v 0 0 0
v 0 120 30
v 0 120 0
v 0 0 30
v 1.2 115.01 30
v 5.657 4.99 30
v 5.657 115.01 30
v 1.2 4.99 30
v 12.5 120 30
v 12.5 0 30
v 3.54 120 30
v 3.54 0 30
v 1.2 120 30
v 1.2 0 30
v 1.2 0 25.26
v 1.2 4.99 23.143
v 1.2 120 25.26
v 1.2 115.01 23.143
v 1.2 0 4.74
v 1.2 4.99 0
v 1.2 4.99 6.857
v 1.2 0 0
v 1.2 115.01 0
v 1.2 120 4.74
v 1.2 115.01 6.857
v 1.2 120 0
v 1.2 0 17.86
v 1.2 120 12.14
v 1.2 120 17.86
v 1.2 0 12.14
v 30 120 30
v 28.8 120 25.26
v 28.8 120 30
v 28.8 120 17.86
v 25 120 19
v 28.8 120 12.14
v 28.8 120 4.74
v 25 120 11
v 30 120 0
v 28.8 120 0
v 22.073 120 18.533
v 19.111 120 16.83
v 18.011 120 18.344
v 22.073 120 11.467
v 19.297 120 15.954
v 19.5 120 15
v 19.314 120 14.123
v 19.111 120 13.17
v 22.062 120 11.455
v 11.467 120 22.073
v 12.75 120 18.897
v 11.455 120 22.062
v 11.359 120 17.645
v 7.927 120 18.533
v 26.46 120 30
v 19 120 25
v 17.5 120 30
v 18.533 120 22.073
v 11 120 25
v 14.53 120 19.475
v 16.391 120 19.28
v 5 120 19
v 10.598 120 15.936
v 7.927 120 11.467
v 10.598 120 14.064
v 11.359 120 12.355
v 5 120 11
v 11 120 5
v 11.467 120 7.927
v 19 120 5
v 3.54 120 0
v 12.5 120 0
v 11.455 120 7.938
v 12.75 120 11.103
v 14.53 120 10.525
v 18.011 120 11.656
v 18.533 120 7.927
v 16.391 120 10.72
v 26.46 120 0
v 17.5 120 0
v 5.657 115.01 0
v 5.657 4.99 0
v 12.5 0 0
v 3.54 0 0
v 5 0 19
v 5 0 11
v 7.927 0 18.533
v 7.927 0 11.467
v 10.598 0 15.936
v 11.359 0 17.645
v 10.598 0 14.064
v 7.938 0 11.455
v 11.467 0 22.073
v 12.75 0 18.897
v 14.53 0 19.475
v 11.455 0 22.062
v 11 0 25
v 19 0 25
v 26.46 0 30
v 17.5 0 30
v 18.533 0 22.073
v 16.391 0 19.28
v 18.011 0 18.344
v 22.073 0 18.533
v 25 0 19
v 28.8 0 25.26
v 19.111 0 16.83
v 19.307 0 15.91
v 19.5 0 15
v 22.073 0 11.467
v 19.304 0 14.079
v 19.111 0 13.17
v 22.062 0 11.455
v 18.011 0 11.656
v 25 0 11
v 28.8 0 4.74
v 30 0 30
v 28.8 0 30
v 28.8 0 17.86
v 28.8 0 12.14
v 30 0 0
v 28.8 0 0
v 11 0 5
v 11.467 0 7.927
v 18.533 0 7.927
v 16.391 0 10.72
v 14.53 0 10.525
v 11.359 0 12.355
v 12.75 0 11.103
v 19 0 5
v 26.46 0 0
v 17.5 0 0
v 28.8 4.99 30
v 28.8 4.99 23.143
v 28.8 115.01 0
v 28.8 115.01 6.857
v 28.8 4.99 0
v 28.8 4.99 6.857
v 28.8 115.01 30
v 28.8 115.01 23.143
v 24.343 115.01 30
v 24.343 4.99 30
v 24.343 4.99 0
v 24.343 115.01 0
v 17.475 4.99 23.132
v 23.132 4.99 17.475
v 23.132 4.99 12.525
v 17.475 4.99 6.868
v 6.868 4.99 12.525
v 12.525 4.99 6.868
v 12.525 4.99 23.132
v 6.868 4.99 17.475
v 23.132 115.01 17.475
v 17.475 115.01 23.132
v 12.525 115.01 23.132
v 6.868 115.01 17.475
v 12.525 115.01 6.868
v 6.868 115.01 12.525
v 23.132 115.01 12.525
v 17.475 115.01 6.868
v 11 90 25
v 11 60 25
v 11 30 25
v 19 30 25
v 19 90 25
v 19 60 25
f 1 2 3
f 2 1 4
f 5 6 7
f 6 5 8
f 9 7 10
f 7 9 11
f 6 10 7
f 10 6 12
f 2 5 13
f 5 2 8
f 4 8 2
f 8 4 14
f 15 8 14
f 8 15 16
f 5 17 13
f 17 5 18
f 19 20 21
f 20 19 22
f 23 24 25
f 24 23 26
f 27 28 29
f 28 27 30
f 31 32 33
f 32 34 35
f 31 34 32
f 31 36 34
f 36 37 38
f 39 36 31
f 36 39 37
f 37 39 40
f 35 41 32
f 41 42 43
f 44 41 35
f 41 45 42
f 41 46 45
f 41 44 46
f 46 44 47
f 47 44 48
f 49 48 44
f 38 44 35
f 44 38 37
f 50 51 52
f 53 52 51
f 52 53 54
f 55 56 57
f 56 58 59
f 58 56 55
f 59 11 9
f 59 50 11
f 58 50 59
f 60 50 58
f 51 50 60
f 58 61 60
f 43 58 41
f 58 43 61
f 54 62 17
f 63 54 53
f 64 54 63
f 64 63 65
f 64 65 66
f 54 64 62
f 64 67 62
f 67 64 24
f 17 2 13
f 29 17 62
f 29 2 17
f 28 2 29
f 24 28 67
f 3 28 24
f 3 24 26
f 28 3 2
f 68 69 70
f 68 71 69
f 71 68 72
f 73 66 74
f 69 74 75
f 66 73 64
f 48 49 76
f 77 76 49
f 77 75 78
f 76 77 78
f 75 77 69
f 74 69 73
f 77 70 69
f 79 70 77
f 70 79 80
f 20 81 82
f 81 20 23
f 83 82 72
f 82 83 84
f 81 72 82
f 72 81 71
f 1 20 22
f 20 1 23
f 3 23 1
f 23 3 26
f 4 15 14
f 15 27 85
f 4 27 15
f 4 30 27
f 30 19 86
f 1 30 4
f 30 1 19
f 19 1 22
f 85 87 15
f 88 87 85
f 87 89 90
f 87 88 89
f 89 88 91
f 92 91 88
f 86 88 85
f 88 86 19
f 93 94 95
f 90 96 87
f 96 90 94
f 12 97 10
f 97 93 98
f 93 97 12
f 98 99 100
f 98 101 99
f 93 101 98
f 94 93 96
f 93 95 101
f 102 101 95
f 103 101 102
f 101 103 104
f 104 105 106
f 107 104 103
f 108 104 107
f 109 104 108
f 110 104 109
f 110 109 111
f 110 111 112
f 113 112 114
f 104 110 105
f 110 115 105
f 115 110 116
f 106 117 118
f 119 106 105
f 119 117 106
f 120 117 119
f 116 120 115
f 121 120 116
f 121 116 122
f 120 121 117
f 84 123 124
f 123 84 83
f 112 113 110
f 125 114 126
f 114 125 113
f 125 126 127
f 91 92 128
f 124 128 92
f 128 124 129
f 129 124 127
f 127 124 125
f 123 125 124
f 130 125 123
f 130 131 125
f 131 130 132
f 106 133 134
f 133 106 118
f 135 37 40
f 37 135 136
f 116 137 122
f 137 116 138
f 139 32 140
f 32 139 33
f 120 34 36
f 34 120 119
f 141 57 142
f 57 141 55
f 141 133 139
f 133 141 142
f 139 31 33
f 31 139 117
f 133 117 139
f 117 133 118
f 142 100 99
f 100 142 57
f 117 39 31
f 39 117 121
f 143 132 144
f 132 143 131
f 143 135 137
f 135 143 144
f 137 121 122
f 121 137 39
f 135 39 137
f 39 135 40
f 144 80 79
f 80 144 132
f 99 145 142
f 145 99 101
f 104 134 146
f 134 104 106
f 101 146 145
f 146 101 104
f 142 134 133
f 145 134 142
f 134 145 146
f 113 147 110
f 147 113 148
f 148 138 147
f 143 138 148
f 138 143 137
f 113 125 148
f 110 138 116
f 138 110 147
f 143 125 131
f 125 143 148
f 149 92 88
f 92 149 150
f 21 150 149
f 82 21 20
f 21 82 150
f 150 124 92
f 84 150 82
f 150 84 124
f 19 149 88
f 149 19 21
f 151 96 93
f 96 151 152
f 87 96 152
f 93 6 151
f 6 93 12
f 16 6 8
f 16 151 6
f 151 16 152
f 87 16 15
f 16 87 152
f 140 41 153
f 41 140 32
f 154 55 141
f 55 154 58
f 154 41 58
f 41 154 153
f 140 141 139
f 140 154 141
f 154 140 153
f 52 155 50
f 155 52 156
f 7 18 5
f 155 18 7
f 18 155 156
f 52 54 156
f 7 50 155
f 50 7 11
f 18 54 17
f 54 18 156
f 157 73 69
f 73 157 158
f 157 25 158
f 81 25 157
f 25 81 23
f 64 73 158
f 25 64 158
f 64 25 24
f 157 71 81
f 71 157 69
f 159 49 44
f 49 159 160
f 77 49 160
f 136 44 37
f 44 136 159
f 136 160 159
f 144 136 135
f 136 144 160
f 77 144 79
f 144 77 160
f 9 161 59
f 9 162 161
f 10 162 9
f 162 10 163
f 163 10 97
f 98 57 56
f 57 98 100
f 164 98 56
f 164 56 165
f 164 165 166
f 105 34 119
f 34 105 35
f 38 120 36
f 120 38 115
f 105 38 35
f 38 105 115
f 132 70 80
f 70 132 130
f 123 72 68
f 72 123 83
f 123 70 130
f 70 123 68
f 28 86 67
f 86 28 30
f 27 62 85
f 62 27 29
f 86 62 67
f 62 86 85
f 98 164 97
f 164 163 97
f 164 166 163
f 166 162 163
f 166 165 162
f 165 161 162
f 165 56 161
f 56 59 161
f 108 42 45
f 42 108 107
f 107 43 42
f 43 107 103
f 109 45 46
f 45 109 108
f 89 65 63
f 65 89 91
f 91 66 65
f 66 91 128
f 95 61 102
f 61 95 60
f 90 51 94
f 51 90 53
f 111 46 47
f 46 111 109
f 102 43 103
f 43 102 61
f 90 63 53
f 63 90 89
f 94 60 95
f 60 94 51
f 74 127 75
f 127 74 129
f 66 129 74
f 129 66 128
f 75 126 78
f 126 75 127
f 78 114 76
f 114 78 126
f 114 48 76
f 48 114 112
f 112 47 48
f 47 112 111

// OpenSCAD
// file: globals.scad
/*
Most things in this file is represented as one millimeter, so keep that in mind while changing things.
Some of the setting are not mm but at variables that you can set, such as 2*x=2x and you are setting what x is.
I will try to specify when things are variables and not exact measurements.
*/

obj_leg = 30;
leg_length = 5.5;
small_number = 0.001;
metal_core_rode_global = 5;


///////////////// number of holes /////////////////////
z_hole_number = 8;
other_holes = 8;

///////////////// Pins /////////////////////

//pins that poke out
ball_size = 10;
pin_height = 20;
pin_diameter = 6;


//holes
hole_ball_size = ball_size;
hole_pin_height = pin_height;
hole_pin_diameter = pin_diameter;

///////////////// Z THINGS /////////////////////

berring_slot_width = 7.5;
berring_slot_depth = 6.5;
metal_core_rode = 5;

///////////////// X THINGS /////////////////////

//male dove tails
max_width=8;
min_width=5;
depth=5;
height=obj_leg/2;

//female dove tails, this is found on the y mounts
girl_max_width=11;
girl_min_width=5;
girl_depth=5;
girl_height=obj_leg;


///////////////// Y THINGS /////////////////////
/*
The Y is so normal that all of those global variables at the top should change all of the setting in it, this section is set her incase there are variables set in the future development of this project.
*/
// file: include.scad
//////////////////      END SECTION       //////////////////

	module added_pins(){
		difference(){
			union(){
				translate([30/(15/4),obj_leg*leg_length,30/(15/4)]) pin();
				translate([30/(15/4)+14.5,obj_leg*leg_length,30/(15/4)+14]) pin();
			}
			union(){
							translate([30/(15/4)+13.5,obj_leg*leg_length-20,30/(15/4)+5])cube(size=[2,40,15]);
							translate([30/(15/4)+7.5,obj_leg*leg_length-20,30/(15/4)+15])rotate([0,90,0]) cube(size=[2,40,15]);	

							translate([30/(15/4)-1,obj_leg*leg_length-20,30/(15/4)-8])cube(size=[2,40,15]);
							translate([30/(15/4)-10,obj_leg*leg_length-20,30/(15/4)+1])rotate([0,90,0]) cube(size=[2,40,15]);
			}
		}
	}
	module taken_pins() {
		translate([30/(15/4)+14,obj_leg*leg_length-10,30/(15/4)]) mirror_pin();
		translate([30/(15/4),obj_leg*leg_length-10,30/(15/4)+15]) mirror_pin();
	}


//////////////////      OTHER STUFF       //////////////////

	module holes() {
		rotate([0,0,90]) for(y=[0:other_holes])
		translate([obj_leg+y*15,-15.5,7.5]) union() {
			translate([7.5,0,15]) hole_up();
			hole_down();
		}
	}
	module extend_holes() {
	module top(){
		rotate([0,0,90]) for(y=[0:other_holes+1])
		translate([(30/4)+y*15,-15.5,7.5]) union() {
			translate([7.5,0,15]) hole_up();
		}
	}
	module bottom(){
		rotate([0,0,90]) for(y=[0:other_holes+2])
		translate([(30/4)+y*15,-15.5,7.5]) union() {
			hole_down();
		
}
	}
	union(){
		top();
		bottom();
	}
	}

	module hole() {
		union() {
			rotate([90, 90, 0]) cylinder(h=40, d=hole_pin_diameter, center=true);
			translate([0,7.5,0]) sphere(d=hole_ball_size);
			translate([0,-6,0]) sphere(d=hole_ball_size);
		}
	}
	module hole_up() {
		union() {
			rotate([90, 90, 0]) cylinder(h=40, d=hole_pin_diameter, center=true);
			translate([0,7.5,10]) cylinder(h=hole_pin_height, d=hole_pin_diameter, center=true);
			translate([0,-6,10]) cylinder(h=hole_pin_height, d=hole_pin_diameter, center=true);
			translate([0,7.5,0]) sphere(d=hole_ball_size);
			translate([0,-6,0]) sphere(d=hole_ball_size);
		}
	}
	module hole_down() {
		union() {
			rotate([90, 90, 0]) cylinder(h=40, d=hole_pin_diameter, center=true);
			translate([0,7.5,-10]) cylinder(h=hole_pin_height, d=hole_pin_diameter, center=true);
			translate([0,-6,-10]) cylinder(h=hole_pin_height, d=hole_pin_diameter, center=true);
			translate([0,7.5,0]) sphere(d=hole_ball_size);
			translate([0,-6,0]) sphere(d=hole_ball_size);
		}
	}
	module pin() {
		union() {
			rotate([90, 90, 0]) cylinder(h=pin_height, d=pin_diameter, center=true);
			translate([0,7.5,0]) sphere(d=ball_size);
		}
	}

	module mirror_pin() {
		rotate([90, 90, 0]) cylinder(h=hole_pin_height+small_number, d=hole_pin_diameter, center=true);
		translate([0,-(pin_height-(ball_size/2)),0]) sphere(d=ball_size);
	}


//////////////////      SOME RACK AND Z THINGS       //////////////////

module z_holes() {
    rotate([0,-90,0]) for(z=[0:z_hole_number])
    translate([22.5+z*15,16,-12])
        hole();
}

module pin_cuts() {
	union(){
		cube(size=[2,10,40], center=true);
		rotate([0,0,90]) cube(size=[2,10,40], center=true);
	}
}
module pin_uncut() {
	union(){
		rotate([0, 0, 90]) cylinder(h=hole_pin_height, d=hole_pin_diameter, center=true);
		translate([0,0,10]) sphere(d=ball_hole);
	}
}


module pin_out() {
	union(){
		rotate([0, 0, 90]) cylinder(h=pin_height, d=pin_diameter, center=true);
		translate([0,0,10]) sphere(d= ball_size);
	}
}


module pins_z(){
	difference() {
		pin_out();
		pin_cuts();
	}
}
//////////////////      RACK AND SLIDE     ///////////////////

module straight_pins() {
	for(z=[0:((((obj_leg*leg_length)*2)-(obj_leg*2))/3)/14.5]) rotate([-90,0,0]) translate([z*15,30/(15/4),14]) pins_z();
	for(z=[0:((((obj_leg*leg_length)*2)-(obj_leg*2))/3)/14.5]) rotate([-90,0,0]) translate([z*15,30/(15/4)-14,14]) pins_z();
}
module stagger_pins() {
	for(z=[0:((((obj_leg*leg_length)*2)-(obj_leg*2))/3)/14.5]) rotate([-90,0,0]) translate([z*15,30/(15/4),14]) pins_z();
	for(z=[0:((((obj_leg*leg_length)*2)-(obj_leg*2))/3)/14.5]) rotate([-90,0,0]) translate([z*15+7,30/(15/4)-14,14]) pins_z();
}


//////////////////      DOVE TAIL       //////////////////

module male_dovetail(height) {
	dovetail_3d(max_width,min_width,depth,height);
}

module dovetail_3d(max_width=11, min_width=5, depth=5, height=30) {
	linear_extrude(height=height, convexity=2)
		dovetail_2d(max_width,min_width,depth);
}

module dovetail_2d(max_width=11, min_width=5, depth=5) {
	angle=atan((max_width/2-min_width/2)/depth);
	echo("angle: ", angle);
	polygon(paths=[[0,1,2,3,0]], points=[[-min_width/2,0], [-max_width/2,depth], [max_width/2, depth], [min_width/2,0]]);
}

//bow tie
	module tie_end(height){
				rotate([0,0,0]) translate([0,-0.01,((obj_leg/2)/2)]) male_dovetail(height);
				rotate([0,90,0]) translate([0,-0.01,((obj_leg/2)/2)]) male_dovetail(height);
				rotate([0,180,0]) translate([0,-0.01,((obj_leg/2)/2)]) male_dovetail(height);
				rotate([0,-90,0]) translate([0,-0.01,((obj_leg/2)/2)]) male_dovetail(height);
	}

module bow_support(){
	difference(){
		intersection(){
			translate([-15,0,-15]) cube([30,9,30]);
			scale([1.05,1.05,1.05]) rotate([0,45,0]) tie_end();
		}
		cube([29.2,29.2,29.2], center=true);
	}
}

	module wrap(){
		depth = 30;
				translate([-15,30,15]) rotate([90,180,90]) male_dovetail(height=depth);
				rotate([0,90,0]) translate([-15,30,15]) rotate([90,180,90]) male_dovetail(height=depth);
				rotate([0,180,0]) translate([-15,30,15]) rotate([90,180,90]) male_dovetail(height=depth);
				rotate([0,-90,0]) translate([-15,30,15]) rotate([90,180,90]) male_dovetail(height=depth);
	}
// main file
include <include.scad>;
include <globals.scad>;
metal_rod_size = 9;
support = true;
//min number of units is 2
//max is however large your printer can print
units = 4;

tip_size	=	1.2;

module extention(){
	
	module added(){
			translate([0,0,0]) cube([30,30*units,30]);
	}

	module subtracted(){
	translate([15,0,15]) rotate([0,45,0]) tie_end();
	translate([15,units*30,15]) rotate([0,45,0]) rotate([0,0,180]) tie_end();
	translate([15,15,15]) rotate([90,0,0]) cylinder(h=5000, d= metal_rod_size, center=true);

	for (y = [-1:units-2]) // two iterations, z = -1, z = 1
	{
			translate([15, (y*30)+15, 15]){
			for (r = [0:4]) // two iterations, z = -1, z = 1
			{
				rotate([0,r*90,0]) translate([0,15,15]) rotate([-90,0,0])male_dovetail(height=30);
			}
		}
	}

	} //subtracted
	difference(){
		added();
		subtracted();
	}	
} //module extention

//support
if (support==true)
{
	cube([tip_size,30*4,30]);
	translate([30-tip_size,0,0]) cube([tip_size,30*4,30]);
}

module extention_finished(){
		rotate([0,0,0]) extention();
}

extention_finished();
